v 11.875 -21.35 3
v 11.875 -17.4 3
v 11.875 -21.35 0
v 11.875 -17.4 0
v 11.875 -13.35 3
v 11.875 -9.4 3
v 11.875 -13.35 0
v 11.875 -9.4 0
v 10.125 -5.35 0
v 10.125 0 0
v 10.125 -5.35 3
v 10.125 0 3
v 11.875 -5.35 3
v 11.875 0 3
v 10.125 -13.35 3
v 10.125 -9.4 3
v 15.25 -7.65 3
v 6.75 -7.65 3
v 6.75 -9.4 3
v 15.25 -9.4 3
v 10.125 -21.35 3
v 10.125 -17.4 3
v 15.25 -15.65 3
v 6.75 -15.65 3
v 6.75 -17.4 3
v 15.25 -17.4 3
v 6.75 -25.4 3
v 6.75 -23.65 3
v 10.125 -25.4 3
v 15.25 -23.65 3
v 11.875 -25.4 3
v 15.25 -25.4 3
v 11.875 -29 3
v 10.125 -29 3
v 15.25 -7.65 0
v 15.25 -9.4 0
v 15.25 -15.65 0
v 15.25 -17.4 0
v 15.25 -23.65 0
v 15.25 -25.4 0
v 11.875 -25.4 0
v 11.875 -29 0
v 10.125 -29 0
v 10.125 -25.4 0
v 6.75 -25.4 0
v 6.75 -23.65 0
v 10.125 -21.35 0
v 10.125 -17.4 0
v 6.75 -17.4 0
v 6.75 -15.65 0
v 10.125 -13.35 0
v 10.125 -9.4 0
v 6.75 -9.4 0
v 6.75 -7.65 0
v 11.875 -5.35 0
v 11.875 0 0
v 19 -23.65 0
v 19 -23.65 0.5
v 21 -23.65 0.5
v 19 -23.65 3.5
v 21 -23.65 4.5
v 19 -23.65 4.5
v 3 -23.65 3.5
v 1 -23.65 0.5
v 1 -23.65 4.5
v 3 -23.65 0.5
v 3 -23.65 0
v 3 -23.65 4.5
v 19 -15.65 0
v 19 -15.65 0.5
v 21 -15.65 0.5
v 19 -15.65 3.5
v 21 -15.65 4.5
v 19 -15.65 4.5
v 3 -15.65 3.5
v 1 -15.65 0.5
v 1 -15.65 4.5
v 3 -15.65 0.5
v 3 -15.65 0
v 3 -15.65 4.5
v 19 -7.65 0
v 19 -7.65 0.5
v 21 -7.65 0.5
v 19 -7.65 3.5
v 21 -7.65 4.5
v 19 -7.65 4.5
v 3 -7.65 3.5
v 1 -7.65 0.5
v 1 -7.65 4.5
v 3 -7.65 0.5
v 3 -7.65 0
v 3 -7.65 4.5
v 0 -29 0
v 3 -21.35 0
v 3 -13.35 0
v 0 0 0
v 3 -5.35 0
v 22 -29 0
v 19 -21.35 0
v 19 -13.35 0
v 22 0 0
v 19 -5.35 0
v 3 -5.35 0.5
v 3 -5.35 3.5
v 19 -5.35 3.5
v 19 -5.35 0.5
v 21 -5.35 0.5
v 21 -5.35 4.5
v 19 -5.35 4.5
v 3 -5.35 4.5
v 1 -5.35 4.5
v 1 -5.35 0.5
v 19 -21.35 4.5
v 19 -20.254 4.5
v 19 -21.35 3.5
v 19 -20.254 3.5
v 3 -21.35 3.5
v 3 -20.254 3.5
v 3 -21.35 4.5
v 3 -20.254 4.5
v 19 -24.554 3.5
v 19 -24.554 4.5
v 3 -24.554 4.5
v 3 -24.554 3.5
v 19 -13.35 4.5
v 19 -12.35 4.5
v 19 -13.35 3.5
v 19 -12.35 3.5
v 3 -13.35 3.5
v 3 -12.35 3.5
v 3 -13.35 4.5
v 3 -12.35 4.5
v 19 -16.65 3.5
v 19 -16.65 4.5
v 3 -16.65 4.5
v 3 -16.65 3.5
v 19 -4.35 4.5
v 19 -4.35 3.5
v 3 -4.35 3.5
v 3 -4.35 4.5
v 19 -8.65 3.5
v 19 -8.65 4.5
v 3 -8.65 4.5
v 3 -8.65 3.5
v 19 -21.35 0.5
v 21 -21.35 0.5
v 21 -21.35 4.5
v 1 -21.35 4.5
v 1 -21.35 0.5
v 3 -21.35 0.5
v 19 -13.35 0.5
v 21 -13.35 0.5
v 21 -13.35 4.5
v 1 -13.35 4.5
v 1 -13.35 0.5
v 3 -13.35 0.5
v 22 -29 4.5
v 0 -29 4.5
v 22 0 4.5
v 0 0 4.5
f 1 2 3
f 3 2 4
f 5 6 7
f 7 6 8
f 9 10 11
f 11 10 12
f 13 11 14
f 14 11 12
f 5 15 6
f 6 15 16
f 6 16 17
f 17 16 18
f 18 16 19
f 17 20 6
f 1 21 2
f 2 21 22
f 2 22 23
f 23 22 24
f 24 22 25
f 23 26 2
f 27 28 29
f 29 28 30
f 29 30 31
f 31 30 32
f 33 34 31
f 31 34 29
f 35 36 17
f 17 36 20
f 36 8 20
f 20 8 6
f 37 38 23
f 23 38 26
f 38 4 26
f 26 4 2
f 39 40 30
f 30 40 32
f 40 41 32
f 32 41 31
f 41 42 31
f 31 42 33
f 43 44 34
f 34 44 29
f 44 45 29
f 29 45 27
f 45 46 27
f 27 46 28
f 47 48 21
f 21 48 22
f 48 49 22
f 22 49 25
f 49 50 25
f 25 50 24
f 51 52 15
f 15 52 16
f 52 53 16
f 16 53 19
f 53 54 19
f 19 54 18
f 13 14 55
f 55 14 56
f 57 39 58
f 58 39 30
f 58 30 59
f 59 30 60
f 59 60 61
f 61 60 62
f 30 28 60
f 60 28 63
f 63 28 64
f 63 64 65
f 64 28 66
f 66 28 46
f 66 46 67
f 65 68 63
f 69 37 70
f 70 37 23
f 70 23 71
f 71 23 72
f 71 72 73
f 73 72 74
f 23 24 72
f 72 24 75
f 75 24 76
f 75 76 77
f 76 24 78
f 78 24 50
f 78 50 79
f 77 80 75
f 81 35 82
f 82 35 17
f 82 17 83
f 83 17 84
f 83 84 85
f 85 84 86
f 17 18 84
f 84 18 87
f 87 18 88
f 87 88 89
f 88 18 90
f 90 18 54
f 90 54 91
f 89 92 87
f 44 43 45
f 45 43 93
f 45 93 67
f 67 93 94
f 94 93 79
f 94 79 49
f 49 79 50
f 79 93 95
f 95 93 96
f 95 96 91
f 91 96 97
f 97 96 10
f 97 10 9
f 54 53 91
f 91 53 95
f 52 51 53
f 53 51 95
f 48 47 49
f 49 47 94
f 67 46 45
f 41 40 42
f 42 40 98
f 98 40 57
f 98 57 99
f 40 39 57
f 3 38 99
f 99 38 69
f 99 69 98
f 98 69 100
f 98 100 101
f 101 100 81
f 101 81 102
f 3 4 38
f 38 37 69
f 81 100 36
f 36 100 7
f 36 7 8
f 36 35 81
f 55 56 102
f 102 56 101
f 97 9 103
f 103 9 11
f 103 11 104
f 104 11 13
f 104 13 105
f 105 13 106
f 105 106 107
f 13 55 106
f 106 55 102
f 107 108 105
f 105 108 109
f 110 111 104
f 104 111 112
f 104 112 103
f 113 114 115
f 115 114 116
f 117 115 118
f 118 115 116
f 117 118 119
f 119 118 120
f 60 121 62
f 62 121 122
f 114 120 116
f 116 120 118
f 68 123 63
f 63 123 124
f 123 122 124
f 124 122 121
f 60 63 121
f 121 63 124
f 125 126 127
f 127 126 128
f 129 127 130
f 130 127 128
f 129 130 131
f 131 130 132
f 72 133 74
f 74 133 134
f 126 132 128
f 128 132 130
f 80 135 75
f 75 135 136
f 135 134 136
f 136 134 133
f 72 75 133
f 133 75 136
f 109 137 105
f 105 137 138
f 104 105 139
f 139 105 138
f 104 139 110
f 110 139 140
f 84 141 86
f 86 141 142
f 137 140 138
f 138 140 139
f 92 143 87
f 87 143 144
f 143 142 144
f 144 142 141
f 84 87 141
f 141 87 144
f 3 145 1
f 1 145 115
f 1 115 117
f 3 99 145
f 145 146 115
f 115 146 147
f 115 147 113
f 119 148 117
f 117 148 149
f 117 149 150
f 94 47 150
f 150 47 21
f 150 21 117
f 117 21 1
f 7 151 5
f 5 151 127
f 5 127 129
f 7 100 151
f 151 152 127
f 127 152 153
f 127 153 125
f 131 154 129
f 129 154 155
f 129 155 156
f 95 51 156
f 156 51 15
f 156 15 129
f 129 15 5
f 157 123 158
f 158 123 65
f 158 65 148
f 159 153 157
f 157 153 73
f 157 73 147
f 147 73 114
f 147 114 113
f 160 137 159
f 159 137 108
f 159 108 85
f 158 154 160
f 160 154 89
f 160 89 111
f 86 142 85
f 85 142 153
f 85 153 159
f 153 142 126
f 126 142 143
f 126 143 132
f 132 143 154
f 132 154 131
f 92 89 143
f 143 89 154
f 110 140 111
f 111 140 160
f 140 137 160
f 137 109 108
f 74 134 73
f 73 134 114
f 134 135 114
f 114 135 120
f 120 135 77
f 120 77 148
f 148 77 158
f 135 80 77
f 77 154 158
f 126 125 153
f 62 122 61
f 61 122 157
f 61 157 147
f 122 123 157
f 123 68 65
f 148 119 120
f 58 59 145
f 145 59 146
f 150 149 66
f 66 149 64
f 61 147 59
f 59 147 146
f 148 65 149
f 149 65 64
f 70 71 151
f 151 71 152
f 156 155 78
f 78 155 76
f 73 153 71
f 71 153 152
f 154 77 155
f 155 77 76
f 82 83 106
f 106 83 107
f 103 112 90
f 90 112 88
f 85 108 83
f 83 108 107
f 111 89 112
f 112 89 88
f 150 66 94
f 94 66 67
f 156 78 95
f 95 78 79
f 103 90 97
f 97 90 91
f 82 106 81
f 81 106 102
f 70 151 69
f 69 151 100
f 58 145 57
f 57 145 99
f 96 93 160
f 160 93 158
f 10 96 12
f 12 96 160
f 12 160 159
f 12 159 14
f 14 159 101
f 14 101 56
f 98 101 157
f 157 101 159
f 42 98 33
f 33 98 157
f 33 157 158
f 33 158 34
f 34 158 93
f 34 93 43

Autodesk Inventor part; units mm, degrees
ref_plane "YZ Plane" through (0, 0, 0) normal (1, 0, 0) x (0, 1, 0)
ref_plane "XZ Plane" through (0, 0, 0) normal (0, 1, 0) x (-1, 0, 0)
ref_plane "XY Plane" through (0, 0, 0) normal (0, 0, 1) x (1, 0, 0)
sketch "Sketch1" plane through (0, 0, 0) normal (0, 0, 1) x (1, 0, 0)
  line L0 (0, 0) -> (22, 0)
  line L1 (22, 0) -> (22, -29)
  line L2 (22, -29) -> (0, -29)
  line L3 (0, -29) -> (0, 0)
  line L4 (3, -5.35) -> (19, -5.35)
  line L5 (19, -5.35) -> (19, -7.65)
  line L6 (19, -7.65) -> (3, -7.65)
  line L7 (3, -7.65) -> (3, -5.35)
  line L8 (3, -13.35) -> (19, -13.35)
  line L9 (19, -13.35) -> (19, -15.65)
  line L10 (19, -15.65) -> (3, -15.65)
  line L11 (3, -15.65) -> (3, -13.35)
  line L12 (3, -21.35) -> (19, -21.35)
  line L13 (19, -21.35) -> (19, -23.65)
  line L14 (19, -23.65) -> (3, -23.65)
  line L15 (3, -23.65) -> (3, -21.35)
  line L16 (19, -5.35) -> (19, -13.35) construction
  line L17 (19, -13.35) -> (19, -21.35) construction
  line L18 (22, -14.5) -> (0, -14.5) construction
  line L19 (11, 0) -> (11, -29) construction
  point P0 (19, -14.5)
  point P1 (11, -5.35)
  dimension "d0" = 22
  dimension "d1" = 29
  dimension "d2" = 2.3
  dimension "d3" = 8
  dimension "d4" = 16
extrude "Body with light pipe slots" add sketch "Sketch1" along normal blind 4.5
sketch "Sketch2" plane through (0, 0, 4.5) normal (0, 0, 1) x (1, 0, 0)
  line L0 (0, -29) -> (22, -29) construction
  line L1 (22, -29) -> (22, 0) construction
  line L2 (22, 0) -> (0, 0) construction
  line L3 (0, 0) -> (0, -29) construction
  line L4 (3, -21.35) -> (19, -21.35) construction
  line L5 (19, -21.35) -> (19, -23.65) construction
  line L6 (19, -23.65) -> (3, -23.65) construction
  line L7 (3, -23.65) -> (3, -21.35) construction
  line L8 (3, -13.35) -> (19, -13.35) construction
  line L9 (19, -13.35) -> (19, -15.65) construction
  line L10 (19, -15.65) -> (3, -15.65) construction
  line L11 (3, -15.65) -> (3, -13.35) construction
  line L12 (3, -5.35) -> (19, -5.35) construction
  line L13 (19, -5.35) -> (19, -7.65) construction
  line L14 (19, -7.65) -> (3, -7.65) construction
  line L15 (3, -7.65) -> (3, -5.35) construction
  line L16 (1, -5.35) -> (21, -5.35)
  line L17 (21, -5.35) -> (21, -7.65)
  line L18 (21, -7.65) -> (1, -7.65)
  line L19 (1, -7.65) -> (1, -5.35)
  line L20 (1, -13.35) -> (21, -13.35)
  line L21 (21, -13.35) -> (21, -15.65)
  line L22 (21, -15.65) -> (1, -15.65)
  line L23 (1, -15.65) -> (1, -13.35)
  line L24 (1, -21.35) -> (21, -21.35)
  line L25 (21, -21.35) -> (21, -23.65)
  line L26 (21, -23.65) -> (1, -23.65)
  line L27 (1, -23.65) -> (1, -21.35)
  dimension "d7" = 2
  dimension "d8" = 2
extrude "Light pipe wing cuts" cut sketch "Sketch2" against normal blind 4
sketch "Sketch3" plane through (0, 0, 4.5) normal (0, 0, 1) x (1, 0, 0)
  line L0 (1, -21.35) -> (21, -21.35) construction
  line L1 (21, -21.35) -> (21, -23.65) construction
  line L2 (21, -23.65) -> (1, -23.65) construction
  line L3 (1, -23.65) -> (1, -21.35) construction
  line L4 (1, -13.35) -> (21, -13.35) construction
  line L5 (21, -13.35) -> (21, -15.65) construction
  line L6 (21, -15.65) -> (1, -15.65) construction
  line L7 (1, -15.65) -> (1, -13.35) construction
  line L8 (1, -5.35) -> (21, -5.35) construction
  line L9 (21, -5.35) -> (21, -7.65) construction
  line L10 (21, -7.65) -> (1, -7.65) construction
  line L11 (1, -7.65) -> (1, -5.35) construction
  line L12 (0, -29) -> (22, -29) construction
  line L13 (22, -29) -> (22, 0) construction
  line L14 (22, 0) -> (0, 0) construction
  line L15 (0, 0) -> (0, -29) construction
  line L16 (3, -5.35) -> (3, -7.65) construction
  line L17 (19, -7.65) -> (19, -5.35) construction
  line L18 (19, -15.65) -> (19, -13.35) construction
  line L19 (19, -23.65) -> (19, -21.35) construction
  line L20 (3, -21.35) -> (3, -23.65) construction
  line L21 (3, -13.35) -> (3, -15.65) construction
  line L22 (3, -4.35) -> (19, -4.35)
  line L23 (19, -4.35) -> (19, -8.65)
  line L24 (19, -8.65) -> (3, -8.65)
  line L25 (3, -8.65) -> (3, -4.35)
  line L26 (3, -12.35) -> (19, -12.35)
  line L27 (19, -12.35) -> (19, -16.65)
  line L28 (19, -16.65) -> (3, -16.65)
  line L29 (3, -16.65) -> (3, -12.35)
  line L30 (3, -20.2545) -> (19, -20.2545)
  line L31 (19, -20.2545) -> (19, -24.5545)
  line L32 (19, -24.5545) -> (3, -24.5545)
  line L33 (3, -24.5545) -> (3, -20.2545)
  dimension "d11" = 1
  dimension "d12" = 1
  dimension "d13" = 1.0956
  dimension "d14" = 1
extrude "SMD clearance cuts" cut sketch "Sketch3" against normal blind 1
sketch "Sketch4" plane through (0, 0, 0) normal (0, 0, -1) x (-1, 0, 0)
  line L0 (-22, 0) -> (0, 0) construction
  line L1 (-11, 0) -> (-11, -29) construction
  line L2 (0, -29) -> (-22, -29) construction
  line L3 (-11.875, 0) -> (-10.125, 0)
  line L4 (-10.125, -29) -> (-11.875, -29)
  line L5 (-3, -5.35) -> (-19, -5.35) projected
  line L6 (-19, -23.65) -> (-3, -23.65) projected
  line L7 (-6.75, -23.65) -> (-6.75, -25.4)
  line L8 (-15.25, -25.4) -> (-15.25, -23.65)
  line L9 (-19, -15.65) -> (-3, -15.65) projected
  line L10 (-6.75, -15.65) -> (-6.75, -17.4)
  line L11 (-15.25, -17.4) -> (-15.25, -15.65)
  line L12 (-3, -7.65) -> (-19, -7.65) projected
  line L13 (-6.75, -7.65) -> (-6.75, -9.4)
  line L14 (-15.25, -9.4) -> (-15.25, -7.65)
  line L15 (-11.875, -7.65) -> (-11.875, 0)
  line L16 (-10.125, 0) -> (-10.125, -7.65)
  line L17 (-6.75, -9.4) -> (-10.125, -9.4)
  line L18 (-11.875, -9.4) -> (-15.25, -9.4)
  line L19 (-11.875, -15.65) -> (-11.875, -9.4)
  line L20 (-10.125, -9.4) -> (-10.125, -15.65)
  line L21 (-15.25, -15.65) -> (-11.875, -15.65)
  line L22 (-10.125, -15.65) -> (-6.75, -15.65)
  line L23 (-6.75, -17.4) -> (-10.125, -17.4)
  line L24 (-11.875, -17.4) -> (-15.25, -17.4)
  line L25 (-15.25, -23.65) -> (-11.875, -23.65)
  line L26 (-10.125, -23.65) -> (-6.75, -23.65)
  line L27 (-6.75, -25.4) -> (-10.125, -25.4)
  line L28 (-11.875, -25.4) -> (-15.25, -25.4)
  line L29 (-11.875, -29) -> (-11.875, -25.4)
  line L30 (-11.875, -23.65) -> (-11.875, -17.4)
  line L31 (-10.125, -17.4) -> (-10.125, -23.65)
  line L32 (-10.125, -25.4) -> (-10.125, -29)
  line L33 (-15.25, -7.65) -> (-11.875, -7.65)
  line L34 (-10.125, -7.65) -> (-6.75, -7.65)
  point P0 (-10.125, -7.65)
  dimension "d18" = 1.75
  dimension "d20" = 1.75
  dimension "d21" = 8.5
  dimension "d22" = 4.25
extrude "Case interior molding cuts" cut sketch "Sketch4" against normal blind 3
equation "\"d8\" = d7"
equation "\"d12\" = d11"
equation "\"d14\" = d11"
equation "\"d22\" = 0.5 * d21"
properties part number "Lightpipe shield"
